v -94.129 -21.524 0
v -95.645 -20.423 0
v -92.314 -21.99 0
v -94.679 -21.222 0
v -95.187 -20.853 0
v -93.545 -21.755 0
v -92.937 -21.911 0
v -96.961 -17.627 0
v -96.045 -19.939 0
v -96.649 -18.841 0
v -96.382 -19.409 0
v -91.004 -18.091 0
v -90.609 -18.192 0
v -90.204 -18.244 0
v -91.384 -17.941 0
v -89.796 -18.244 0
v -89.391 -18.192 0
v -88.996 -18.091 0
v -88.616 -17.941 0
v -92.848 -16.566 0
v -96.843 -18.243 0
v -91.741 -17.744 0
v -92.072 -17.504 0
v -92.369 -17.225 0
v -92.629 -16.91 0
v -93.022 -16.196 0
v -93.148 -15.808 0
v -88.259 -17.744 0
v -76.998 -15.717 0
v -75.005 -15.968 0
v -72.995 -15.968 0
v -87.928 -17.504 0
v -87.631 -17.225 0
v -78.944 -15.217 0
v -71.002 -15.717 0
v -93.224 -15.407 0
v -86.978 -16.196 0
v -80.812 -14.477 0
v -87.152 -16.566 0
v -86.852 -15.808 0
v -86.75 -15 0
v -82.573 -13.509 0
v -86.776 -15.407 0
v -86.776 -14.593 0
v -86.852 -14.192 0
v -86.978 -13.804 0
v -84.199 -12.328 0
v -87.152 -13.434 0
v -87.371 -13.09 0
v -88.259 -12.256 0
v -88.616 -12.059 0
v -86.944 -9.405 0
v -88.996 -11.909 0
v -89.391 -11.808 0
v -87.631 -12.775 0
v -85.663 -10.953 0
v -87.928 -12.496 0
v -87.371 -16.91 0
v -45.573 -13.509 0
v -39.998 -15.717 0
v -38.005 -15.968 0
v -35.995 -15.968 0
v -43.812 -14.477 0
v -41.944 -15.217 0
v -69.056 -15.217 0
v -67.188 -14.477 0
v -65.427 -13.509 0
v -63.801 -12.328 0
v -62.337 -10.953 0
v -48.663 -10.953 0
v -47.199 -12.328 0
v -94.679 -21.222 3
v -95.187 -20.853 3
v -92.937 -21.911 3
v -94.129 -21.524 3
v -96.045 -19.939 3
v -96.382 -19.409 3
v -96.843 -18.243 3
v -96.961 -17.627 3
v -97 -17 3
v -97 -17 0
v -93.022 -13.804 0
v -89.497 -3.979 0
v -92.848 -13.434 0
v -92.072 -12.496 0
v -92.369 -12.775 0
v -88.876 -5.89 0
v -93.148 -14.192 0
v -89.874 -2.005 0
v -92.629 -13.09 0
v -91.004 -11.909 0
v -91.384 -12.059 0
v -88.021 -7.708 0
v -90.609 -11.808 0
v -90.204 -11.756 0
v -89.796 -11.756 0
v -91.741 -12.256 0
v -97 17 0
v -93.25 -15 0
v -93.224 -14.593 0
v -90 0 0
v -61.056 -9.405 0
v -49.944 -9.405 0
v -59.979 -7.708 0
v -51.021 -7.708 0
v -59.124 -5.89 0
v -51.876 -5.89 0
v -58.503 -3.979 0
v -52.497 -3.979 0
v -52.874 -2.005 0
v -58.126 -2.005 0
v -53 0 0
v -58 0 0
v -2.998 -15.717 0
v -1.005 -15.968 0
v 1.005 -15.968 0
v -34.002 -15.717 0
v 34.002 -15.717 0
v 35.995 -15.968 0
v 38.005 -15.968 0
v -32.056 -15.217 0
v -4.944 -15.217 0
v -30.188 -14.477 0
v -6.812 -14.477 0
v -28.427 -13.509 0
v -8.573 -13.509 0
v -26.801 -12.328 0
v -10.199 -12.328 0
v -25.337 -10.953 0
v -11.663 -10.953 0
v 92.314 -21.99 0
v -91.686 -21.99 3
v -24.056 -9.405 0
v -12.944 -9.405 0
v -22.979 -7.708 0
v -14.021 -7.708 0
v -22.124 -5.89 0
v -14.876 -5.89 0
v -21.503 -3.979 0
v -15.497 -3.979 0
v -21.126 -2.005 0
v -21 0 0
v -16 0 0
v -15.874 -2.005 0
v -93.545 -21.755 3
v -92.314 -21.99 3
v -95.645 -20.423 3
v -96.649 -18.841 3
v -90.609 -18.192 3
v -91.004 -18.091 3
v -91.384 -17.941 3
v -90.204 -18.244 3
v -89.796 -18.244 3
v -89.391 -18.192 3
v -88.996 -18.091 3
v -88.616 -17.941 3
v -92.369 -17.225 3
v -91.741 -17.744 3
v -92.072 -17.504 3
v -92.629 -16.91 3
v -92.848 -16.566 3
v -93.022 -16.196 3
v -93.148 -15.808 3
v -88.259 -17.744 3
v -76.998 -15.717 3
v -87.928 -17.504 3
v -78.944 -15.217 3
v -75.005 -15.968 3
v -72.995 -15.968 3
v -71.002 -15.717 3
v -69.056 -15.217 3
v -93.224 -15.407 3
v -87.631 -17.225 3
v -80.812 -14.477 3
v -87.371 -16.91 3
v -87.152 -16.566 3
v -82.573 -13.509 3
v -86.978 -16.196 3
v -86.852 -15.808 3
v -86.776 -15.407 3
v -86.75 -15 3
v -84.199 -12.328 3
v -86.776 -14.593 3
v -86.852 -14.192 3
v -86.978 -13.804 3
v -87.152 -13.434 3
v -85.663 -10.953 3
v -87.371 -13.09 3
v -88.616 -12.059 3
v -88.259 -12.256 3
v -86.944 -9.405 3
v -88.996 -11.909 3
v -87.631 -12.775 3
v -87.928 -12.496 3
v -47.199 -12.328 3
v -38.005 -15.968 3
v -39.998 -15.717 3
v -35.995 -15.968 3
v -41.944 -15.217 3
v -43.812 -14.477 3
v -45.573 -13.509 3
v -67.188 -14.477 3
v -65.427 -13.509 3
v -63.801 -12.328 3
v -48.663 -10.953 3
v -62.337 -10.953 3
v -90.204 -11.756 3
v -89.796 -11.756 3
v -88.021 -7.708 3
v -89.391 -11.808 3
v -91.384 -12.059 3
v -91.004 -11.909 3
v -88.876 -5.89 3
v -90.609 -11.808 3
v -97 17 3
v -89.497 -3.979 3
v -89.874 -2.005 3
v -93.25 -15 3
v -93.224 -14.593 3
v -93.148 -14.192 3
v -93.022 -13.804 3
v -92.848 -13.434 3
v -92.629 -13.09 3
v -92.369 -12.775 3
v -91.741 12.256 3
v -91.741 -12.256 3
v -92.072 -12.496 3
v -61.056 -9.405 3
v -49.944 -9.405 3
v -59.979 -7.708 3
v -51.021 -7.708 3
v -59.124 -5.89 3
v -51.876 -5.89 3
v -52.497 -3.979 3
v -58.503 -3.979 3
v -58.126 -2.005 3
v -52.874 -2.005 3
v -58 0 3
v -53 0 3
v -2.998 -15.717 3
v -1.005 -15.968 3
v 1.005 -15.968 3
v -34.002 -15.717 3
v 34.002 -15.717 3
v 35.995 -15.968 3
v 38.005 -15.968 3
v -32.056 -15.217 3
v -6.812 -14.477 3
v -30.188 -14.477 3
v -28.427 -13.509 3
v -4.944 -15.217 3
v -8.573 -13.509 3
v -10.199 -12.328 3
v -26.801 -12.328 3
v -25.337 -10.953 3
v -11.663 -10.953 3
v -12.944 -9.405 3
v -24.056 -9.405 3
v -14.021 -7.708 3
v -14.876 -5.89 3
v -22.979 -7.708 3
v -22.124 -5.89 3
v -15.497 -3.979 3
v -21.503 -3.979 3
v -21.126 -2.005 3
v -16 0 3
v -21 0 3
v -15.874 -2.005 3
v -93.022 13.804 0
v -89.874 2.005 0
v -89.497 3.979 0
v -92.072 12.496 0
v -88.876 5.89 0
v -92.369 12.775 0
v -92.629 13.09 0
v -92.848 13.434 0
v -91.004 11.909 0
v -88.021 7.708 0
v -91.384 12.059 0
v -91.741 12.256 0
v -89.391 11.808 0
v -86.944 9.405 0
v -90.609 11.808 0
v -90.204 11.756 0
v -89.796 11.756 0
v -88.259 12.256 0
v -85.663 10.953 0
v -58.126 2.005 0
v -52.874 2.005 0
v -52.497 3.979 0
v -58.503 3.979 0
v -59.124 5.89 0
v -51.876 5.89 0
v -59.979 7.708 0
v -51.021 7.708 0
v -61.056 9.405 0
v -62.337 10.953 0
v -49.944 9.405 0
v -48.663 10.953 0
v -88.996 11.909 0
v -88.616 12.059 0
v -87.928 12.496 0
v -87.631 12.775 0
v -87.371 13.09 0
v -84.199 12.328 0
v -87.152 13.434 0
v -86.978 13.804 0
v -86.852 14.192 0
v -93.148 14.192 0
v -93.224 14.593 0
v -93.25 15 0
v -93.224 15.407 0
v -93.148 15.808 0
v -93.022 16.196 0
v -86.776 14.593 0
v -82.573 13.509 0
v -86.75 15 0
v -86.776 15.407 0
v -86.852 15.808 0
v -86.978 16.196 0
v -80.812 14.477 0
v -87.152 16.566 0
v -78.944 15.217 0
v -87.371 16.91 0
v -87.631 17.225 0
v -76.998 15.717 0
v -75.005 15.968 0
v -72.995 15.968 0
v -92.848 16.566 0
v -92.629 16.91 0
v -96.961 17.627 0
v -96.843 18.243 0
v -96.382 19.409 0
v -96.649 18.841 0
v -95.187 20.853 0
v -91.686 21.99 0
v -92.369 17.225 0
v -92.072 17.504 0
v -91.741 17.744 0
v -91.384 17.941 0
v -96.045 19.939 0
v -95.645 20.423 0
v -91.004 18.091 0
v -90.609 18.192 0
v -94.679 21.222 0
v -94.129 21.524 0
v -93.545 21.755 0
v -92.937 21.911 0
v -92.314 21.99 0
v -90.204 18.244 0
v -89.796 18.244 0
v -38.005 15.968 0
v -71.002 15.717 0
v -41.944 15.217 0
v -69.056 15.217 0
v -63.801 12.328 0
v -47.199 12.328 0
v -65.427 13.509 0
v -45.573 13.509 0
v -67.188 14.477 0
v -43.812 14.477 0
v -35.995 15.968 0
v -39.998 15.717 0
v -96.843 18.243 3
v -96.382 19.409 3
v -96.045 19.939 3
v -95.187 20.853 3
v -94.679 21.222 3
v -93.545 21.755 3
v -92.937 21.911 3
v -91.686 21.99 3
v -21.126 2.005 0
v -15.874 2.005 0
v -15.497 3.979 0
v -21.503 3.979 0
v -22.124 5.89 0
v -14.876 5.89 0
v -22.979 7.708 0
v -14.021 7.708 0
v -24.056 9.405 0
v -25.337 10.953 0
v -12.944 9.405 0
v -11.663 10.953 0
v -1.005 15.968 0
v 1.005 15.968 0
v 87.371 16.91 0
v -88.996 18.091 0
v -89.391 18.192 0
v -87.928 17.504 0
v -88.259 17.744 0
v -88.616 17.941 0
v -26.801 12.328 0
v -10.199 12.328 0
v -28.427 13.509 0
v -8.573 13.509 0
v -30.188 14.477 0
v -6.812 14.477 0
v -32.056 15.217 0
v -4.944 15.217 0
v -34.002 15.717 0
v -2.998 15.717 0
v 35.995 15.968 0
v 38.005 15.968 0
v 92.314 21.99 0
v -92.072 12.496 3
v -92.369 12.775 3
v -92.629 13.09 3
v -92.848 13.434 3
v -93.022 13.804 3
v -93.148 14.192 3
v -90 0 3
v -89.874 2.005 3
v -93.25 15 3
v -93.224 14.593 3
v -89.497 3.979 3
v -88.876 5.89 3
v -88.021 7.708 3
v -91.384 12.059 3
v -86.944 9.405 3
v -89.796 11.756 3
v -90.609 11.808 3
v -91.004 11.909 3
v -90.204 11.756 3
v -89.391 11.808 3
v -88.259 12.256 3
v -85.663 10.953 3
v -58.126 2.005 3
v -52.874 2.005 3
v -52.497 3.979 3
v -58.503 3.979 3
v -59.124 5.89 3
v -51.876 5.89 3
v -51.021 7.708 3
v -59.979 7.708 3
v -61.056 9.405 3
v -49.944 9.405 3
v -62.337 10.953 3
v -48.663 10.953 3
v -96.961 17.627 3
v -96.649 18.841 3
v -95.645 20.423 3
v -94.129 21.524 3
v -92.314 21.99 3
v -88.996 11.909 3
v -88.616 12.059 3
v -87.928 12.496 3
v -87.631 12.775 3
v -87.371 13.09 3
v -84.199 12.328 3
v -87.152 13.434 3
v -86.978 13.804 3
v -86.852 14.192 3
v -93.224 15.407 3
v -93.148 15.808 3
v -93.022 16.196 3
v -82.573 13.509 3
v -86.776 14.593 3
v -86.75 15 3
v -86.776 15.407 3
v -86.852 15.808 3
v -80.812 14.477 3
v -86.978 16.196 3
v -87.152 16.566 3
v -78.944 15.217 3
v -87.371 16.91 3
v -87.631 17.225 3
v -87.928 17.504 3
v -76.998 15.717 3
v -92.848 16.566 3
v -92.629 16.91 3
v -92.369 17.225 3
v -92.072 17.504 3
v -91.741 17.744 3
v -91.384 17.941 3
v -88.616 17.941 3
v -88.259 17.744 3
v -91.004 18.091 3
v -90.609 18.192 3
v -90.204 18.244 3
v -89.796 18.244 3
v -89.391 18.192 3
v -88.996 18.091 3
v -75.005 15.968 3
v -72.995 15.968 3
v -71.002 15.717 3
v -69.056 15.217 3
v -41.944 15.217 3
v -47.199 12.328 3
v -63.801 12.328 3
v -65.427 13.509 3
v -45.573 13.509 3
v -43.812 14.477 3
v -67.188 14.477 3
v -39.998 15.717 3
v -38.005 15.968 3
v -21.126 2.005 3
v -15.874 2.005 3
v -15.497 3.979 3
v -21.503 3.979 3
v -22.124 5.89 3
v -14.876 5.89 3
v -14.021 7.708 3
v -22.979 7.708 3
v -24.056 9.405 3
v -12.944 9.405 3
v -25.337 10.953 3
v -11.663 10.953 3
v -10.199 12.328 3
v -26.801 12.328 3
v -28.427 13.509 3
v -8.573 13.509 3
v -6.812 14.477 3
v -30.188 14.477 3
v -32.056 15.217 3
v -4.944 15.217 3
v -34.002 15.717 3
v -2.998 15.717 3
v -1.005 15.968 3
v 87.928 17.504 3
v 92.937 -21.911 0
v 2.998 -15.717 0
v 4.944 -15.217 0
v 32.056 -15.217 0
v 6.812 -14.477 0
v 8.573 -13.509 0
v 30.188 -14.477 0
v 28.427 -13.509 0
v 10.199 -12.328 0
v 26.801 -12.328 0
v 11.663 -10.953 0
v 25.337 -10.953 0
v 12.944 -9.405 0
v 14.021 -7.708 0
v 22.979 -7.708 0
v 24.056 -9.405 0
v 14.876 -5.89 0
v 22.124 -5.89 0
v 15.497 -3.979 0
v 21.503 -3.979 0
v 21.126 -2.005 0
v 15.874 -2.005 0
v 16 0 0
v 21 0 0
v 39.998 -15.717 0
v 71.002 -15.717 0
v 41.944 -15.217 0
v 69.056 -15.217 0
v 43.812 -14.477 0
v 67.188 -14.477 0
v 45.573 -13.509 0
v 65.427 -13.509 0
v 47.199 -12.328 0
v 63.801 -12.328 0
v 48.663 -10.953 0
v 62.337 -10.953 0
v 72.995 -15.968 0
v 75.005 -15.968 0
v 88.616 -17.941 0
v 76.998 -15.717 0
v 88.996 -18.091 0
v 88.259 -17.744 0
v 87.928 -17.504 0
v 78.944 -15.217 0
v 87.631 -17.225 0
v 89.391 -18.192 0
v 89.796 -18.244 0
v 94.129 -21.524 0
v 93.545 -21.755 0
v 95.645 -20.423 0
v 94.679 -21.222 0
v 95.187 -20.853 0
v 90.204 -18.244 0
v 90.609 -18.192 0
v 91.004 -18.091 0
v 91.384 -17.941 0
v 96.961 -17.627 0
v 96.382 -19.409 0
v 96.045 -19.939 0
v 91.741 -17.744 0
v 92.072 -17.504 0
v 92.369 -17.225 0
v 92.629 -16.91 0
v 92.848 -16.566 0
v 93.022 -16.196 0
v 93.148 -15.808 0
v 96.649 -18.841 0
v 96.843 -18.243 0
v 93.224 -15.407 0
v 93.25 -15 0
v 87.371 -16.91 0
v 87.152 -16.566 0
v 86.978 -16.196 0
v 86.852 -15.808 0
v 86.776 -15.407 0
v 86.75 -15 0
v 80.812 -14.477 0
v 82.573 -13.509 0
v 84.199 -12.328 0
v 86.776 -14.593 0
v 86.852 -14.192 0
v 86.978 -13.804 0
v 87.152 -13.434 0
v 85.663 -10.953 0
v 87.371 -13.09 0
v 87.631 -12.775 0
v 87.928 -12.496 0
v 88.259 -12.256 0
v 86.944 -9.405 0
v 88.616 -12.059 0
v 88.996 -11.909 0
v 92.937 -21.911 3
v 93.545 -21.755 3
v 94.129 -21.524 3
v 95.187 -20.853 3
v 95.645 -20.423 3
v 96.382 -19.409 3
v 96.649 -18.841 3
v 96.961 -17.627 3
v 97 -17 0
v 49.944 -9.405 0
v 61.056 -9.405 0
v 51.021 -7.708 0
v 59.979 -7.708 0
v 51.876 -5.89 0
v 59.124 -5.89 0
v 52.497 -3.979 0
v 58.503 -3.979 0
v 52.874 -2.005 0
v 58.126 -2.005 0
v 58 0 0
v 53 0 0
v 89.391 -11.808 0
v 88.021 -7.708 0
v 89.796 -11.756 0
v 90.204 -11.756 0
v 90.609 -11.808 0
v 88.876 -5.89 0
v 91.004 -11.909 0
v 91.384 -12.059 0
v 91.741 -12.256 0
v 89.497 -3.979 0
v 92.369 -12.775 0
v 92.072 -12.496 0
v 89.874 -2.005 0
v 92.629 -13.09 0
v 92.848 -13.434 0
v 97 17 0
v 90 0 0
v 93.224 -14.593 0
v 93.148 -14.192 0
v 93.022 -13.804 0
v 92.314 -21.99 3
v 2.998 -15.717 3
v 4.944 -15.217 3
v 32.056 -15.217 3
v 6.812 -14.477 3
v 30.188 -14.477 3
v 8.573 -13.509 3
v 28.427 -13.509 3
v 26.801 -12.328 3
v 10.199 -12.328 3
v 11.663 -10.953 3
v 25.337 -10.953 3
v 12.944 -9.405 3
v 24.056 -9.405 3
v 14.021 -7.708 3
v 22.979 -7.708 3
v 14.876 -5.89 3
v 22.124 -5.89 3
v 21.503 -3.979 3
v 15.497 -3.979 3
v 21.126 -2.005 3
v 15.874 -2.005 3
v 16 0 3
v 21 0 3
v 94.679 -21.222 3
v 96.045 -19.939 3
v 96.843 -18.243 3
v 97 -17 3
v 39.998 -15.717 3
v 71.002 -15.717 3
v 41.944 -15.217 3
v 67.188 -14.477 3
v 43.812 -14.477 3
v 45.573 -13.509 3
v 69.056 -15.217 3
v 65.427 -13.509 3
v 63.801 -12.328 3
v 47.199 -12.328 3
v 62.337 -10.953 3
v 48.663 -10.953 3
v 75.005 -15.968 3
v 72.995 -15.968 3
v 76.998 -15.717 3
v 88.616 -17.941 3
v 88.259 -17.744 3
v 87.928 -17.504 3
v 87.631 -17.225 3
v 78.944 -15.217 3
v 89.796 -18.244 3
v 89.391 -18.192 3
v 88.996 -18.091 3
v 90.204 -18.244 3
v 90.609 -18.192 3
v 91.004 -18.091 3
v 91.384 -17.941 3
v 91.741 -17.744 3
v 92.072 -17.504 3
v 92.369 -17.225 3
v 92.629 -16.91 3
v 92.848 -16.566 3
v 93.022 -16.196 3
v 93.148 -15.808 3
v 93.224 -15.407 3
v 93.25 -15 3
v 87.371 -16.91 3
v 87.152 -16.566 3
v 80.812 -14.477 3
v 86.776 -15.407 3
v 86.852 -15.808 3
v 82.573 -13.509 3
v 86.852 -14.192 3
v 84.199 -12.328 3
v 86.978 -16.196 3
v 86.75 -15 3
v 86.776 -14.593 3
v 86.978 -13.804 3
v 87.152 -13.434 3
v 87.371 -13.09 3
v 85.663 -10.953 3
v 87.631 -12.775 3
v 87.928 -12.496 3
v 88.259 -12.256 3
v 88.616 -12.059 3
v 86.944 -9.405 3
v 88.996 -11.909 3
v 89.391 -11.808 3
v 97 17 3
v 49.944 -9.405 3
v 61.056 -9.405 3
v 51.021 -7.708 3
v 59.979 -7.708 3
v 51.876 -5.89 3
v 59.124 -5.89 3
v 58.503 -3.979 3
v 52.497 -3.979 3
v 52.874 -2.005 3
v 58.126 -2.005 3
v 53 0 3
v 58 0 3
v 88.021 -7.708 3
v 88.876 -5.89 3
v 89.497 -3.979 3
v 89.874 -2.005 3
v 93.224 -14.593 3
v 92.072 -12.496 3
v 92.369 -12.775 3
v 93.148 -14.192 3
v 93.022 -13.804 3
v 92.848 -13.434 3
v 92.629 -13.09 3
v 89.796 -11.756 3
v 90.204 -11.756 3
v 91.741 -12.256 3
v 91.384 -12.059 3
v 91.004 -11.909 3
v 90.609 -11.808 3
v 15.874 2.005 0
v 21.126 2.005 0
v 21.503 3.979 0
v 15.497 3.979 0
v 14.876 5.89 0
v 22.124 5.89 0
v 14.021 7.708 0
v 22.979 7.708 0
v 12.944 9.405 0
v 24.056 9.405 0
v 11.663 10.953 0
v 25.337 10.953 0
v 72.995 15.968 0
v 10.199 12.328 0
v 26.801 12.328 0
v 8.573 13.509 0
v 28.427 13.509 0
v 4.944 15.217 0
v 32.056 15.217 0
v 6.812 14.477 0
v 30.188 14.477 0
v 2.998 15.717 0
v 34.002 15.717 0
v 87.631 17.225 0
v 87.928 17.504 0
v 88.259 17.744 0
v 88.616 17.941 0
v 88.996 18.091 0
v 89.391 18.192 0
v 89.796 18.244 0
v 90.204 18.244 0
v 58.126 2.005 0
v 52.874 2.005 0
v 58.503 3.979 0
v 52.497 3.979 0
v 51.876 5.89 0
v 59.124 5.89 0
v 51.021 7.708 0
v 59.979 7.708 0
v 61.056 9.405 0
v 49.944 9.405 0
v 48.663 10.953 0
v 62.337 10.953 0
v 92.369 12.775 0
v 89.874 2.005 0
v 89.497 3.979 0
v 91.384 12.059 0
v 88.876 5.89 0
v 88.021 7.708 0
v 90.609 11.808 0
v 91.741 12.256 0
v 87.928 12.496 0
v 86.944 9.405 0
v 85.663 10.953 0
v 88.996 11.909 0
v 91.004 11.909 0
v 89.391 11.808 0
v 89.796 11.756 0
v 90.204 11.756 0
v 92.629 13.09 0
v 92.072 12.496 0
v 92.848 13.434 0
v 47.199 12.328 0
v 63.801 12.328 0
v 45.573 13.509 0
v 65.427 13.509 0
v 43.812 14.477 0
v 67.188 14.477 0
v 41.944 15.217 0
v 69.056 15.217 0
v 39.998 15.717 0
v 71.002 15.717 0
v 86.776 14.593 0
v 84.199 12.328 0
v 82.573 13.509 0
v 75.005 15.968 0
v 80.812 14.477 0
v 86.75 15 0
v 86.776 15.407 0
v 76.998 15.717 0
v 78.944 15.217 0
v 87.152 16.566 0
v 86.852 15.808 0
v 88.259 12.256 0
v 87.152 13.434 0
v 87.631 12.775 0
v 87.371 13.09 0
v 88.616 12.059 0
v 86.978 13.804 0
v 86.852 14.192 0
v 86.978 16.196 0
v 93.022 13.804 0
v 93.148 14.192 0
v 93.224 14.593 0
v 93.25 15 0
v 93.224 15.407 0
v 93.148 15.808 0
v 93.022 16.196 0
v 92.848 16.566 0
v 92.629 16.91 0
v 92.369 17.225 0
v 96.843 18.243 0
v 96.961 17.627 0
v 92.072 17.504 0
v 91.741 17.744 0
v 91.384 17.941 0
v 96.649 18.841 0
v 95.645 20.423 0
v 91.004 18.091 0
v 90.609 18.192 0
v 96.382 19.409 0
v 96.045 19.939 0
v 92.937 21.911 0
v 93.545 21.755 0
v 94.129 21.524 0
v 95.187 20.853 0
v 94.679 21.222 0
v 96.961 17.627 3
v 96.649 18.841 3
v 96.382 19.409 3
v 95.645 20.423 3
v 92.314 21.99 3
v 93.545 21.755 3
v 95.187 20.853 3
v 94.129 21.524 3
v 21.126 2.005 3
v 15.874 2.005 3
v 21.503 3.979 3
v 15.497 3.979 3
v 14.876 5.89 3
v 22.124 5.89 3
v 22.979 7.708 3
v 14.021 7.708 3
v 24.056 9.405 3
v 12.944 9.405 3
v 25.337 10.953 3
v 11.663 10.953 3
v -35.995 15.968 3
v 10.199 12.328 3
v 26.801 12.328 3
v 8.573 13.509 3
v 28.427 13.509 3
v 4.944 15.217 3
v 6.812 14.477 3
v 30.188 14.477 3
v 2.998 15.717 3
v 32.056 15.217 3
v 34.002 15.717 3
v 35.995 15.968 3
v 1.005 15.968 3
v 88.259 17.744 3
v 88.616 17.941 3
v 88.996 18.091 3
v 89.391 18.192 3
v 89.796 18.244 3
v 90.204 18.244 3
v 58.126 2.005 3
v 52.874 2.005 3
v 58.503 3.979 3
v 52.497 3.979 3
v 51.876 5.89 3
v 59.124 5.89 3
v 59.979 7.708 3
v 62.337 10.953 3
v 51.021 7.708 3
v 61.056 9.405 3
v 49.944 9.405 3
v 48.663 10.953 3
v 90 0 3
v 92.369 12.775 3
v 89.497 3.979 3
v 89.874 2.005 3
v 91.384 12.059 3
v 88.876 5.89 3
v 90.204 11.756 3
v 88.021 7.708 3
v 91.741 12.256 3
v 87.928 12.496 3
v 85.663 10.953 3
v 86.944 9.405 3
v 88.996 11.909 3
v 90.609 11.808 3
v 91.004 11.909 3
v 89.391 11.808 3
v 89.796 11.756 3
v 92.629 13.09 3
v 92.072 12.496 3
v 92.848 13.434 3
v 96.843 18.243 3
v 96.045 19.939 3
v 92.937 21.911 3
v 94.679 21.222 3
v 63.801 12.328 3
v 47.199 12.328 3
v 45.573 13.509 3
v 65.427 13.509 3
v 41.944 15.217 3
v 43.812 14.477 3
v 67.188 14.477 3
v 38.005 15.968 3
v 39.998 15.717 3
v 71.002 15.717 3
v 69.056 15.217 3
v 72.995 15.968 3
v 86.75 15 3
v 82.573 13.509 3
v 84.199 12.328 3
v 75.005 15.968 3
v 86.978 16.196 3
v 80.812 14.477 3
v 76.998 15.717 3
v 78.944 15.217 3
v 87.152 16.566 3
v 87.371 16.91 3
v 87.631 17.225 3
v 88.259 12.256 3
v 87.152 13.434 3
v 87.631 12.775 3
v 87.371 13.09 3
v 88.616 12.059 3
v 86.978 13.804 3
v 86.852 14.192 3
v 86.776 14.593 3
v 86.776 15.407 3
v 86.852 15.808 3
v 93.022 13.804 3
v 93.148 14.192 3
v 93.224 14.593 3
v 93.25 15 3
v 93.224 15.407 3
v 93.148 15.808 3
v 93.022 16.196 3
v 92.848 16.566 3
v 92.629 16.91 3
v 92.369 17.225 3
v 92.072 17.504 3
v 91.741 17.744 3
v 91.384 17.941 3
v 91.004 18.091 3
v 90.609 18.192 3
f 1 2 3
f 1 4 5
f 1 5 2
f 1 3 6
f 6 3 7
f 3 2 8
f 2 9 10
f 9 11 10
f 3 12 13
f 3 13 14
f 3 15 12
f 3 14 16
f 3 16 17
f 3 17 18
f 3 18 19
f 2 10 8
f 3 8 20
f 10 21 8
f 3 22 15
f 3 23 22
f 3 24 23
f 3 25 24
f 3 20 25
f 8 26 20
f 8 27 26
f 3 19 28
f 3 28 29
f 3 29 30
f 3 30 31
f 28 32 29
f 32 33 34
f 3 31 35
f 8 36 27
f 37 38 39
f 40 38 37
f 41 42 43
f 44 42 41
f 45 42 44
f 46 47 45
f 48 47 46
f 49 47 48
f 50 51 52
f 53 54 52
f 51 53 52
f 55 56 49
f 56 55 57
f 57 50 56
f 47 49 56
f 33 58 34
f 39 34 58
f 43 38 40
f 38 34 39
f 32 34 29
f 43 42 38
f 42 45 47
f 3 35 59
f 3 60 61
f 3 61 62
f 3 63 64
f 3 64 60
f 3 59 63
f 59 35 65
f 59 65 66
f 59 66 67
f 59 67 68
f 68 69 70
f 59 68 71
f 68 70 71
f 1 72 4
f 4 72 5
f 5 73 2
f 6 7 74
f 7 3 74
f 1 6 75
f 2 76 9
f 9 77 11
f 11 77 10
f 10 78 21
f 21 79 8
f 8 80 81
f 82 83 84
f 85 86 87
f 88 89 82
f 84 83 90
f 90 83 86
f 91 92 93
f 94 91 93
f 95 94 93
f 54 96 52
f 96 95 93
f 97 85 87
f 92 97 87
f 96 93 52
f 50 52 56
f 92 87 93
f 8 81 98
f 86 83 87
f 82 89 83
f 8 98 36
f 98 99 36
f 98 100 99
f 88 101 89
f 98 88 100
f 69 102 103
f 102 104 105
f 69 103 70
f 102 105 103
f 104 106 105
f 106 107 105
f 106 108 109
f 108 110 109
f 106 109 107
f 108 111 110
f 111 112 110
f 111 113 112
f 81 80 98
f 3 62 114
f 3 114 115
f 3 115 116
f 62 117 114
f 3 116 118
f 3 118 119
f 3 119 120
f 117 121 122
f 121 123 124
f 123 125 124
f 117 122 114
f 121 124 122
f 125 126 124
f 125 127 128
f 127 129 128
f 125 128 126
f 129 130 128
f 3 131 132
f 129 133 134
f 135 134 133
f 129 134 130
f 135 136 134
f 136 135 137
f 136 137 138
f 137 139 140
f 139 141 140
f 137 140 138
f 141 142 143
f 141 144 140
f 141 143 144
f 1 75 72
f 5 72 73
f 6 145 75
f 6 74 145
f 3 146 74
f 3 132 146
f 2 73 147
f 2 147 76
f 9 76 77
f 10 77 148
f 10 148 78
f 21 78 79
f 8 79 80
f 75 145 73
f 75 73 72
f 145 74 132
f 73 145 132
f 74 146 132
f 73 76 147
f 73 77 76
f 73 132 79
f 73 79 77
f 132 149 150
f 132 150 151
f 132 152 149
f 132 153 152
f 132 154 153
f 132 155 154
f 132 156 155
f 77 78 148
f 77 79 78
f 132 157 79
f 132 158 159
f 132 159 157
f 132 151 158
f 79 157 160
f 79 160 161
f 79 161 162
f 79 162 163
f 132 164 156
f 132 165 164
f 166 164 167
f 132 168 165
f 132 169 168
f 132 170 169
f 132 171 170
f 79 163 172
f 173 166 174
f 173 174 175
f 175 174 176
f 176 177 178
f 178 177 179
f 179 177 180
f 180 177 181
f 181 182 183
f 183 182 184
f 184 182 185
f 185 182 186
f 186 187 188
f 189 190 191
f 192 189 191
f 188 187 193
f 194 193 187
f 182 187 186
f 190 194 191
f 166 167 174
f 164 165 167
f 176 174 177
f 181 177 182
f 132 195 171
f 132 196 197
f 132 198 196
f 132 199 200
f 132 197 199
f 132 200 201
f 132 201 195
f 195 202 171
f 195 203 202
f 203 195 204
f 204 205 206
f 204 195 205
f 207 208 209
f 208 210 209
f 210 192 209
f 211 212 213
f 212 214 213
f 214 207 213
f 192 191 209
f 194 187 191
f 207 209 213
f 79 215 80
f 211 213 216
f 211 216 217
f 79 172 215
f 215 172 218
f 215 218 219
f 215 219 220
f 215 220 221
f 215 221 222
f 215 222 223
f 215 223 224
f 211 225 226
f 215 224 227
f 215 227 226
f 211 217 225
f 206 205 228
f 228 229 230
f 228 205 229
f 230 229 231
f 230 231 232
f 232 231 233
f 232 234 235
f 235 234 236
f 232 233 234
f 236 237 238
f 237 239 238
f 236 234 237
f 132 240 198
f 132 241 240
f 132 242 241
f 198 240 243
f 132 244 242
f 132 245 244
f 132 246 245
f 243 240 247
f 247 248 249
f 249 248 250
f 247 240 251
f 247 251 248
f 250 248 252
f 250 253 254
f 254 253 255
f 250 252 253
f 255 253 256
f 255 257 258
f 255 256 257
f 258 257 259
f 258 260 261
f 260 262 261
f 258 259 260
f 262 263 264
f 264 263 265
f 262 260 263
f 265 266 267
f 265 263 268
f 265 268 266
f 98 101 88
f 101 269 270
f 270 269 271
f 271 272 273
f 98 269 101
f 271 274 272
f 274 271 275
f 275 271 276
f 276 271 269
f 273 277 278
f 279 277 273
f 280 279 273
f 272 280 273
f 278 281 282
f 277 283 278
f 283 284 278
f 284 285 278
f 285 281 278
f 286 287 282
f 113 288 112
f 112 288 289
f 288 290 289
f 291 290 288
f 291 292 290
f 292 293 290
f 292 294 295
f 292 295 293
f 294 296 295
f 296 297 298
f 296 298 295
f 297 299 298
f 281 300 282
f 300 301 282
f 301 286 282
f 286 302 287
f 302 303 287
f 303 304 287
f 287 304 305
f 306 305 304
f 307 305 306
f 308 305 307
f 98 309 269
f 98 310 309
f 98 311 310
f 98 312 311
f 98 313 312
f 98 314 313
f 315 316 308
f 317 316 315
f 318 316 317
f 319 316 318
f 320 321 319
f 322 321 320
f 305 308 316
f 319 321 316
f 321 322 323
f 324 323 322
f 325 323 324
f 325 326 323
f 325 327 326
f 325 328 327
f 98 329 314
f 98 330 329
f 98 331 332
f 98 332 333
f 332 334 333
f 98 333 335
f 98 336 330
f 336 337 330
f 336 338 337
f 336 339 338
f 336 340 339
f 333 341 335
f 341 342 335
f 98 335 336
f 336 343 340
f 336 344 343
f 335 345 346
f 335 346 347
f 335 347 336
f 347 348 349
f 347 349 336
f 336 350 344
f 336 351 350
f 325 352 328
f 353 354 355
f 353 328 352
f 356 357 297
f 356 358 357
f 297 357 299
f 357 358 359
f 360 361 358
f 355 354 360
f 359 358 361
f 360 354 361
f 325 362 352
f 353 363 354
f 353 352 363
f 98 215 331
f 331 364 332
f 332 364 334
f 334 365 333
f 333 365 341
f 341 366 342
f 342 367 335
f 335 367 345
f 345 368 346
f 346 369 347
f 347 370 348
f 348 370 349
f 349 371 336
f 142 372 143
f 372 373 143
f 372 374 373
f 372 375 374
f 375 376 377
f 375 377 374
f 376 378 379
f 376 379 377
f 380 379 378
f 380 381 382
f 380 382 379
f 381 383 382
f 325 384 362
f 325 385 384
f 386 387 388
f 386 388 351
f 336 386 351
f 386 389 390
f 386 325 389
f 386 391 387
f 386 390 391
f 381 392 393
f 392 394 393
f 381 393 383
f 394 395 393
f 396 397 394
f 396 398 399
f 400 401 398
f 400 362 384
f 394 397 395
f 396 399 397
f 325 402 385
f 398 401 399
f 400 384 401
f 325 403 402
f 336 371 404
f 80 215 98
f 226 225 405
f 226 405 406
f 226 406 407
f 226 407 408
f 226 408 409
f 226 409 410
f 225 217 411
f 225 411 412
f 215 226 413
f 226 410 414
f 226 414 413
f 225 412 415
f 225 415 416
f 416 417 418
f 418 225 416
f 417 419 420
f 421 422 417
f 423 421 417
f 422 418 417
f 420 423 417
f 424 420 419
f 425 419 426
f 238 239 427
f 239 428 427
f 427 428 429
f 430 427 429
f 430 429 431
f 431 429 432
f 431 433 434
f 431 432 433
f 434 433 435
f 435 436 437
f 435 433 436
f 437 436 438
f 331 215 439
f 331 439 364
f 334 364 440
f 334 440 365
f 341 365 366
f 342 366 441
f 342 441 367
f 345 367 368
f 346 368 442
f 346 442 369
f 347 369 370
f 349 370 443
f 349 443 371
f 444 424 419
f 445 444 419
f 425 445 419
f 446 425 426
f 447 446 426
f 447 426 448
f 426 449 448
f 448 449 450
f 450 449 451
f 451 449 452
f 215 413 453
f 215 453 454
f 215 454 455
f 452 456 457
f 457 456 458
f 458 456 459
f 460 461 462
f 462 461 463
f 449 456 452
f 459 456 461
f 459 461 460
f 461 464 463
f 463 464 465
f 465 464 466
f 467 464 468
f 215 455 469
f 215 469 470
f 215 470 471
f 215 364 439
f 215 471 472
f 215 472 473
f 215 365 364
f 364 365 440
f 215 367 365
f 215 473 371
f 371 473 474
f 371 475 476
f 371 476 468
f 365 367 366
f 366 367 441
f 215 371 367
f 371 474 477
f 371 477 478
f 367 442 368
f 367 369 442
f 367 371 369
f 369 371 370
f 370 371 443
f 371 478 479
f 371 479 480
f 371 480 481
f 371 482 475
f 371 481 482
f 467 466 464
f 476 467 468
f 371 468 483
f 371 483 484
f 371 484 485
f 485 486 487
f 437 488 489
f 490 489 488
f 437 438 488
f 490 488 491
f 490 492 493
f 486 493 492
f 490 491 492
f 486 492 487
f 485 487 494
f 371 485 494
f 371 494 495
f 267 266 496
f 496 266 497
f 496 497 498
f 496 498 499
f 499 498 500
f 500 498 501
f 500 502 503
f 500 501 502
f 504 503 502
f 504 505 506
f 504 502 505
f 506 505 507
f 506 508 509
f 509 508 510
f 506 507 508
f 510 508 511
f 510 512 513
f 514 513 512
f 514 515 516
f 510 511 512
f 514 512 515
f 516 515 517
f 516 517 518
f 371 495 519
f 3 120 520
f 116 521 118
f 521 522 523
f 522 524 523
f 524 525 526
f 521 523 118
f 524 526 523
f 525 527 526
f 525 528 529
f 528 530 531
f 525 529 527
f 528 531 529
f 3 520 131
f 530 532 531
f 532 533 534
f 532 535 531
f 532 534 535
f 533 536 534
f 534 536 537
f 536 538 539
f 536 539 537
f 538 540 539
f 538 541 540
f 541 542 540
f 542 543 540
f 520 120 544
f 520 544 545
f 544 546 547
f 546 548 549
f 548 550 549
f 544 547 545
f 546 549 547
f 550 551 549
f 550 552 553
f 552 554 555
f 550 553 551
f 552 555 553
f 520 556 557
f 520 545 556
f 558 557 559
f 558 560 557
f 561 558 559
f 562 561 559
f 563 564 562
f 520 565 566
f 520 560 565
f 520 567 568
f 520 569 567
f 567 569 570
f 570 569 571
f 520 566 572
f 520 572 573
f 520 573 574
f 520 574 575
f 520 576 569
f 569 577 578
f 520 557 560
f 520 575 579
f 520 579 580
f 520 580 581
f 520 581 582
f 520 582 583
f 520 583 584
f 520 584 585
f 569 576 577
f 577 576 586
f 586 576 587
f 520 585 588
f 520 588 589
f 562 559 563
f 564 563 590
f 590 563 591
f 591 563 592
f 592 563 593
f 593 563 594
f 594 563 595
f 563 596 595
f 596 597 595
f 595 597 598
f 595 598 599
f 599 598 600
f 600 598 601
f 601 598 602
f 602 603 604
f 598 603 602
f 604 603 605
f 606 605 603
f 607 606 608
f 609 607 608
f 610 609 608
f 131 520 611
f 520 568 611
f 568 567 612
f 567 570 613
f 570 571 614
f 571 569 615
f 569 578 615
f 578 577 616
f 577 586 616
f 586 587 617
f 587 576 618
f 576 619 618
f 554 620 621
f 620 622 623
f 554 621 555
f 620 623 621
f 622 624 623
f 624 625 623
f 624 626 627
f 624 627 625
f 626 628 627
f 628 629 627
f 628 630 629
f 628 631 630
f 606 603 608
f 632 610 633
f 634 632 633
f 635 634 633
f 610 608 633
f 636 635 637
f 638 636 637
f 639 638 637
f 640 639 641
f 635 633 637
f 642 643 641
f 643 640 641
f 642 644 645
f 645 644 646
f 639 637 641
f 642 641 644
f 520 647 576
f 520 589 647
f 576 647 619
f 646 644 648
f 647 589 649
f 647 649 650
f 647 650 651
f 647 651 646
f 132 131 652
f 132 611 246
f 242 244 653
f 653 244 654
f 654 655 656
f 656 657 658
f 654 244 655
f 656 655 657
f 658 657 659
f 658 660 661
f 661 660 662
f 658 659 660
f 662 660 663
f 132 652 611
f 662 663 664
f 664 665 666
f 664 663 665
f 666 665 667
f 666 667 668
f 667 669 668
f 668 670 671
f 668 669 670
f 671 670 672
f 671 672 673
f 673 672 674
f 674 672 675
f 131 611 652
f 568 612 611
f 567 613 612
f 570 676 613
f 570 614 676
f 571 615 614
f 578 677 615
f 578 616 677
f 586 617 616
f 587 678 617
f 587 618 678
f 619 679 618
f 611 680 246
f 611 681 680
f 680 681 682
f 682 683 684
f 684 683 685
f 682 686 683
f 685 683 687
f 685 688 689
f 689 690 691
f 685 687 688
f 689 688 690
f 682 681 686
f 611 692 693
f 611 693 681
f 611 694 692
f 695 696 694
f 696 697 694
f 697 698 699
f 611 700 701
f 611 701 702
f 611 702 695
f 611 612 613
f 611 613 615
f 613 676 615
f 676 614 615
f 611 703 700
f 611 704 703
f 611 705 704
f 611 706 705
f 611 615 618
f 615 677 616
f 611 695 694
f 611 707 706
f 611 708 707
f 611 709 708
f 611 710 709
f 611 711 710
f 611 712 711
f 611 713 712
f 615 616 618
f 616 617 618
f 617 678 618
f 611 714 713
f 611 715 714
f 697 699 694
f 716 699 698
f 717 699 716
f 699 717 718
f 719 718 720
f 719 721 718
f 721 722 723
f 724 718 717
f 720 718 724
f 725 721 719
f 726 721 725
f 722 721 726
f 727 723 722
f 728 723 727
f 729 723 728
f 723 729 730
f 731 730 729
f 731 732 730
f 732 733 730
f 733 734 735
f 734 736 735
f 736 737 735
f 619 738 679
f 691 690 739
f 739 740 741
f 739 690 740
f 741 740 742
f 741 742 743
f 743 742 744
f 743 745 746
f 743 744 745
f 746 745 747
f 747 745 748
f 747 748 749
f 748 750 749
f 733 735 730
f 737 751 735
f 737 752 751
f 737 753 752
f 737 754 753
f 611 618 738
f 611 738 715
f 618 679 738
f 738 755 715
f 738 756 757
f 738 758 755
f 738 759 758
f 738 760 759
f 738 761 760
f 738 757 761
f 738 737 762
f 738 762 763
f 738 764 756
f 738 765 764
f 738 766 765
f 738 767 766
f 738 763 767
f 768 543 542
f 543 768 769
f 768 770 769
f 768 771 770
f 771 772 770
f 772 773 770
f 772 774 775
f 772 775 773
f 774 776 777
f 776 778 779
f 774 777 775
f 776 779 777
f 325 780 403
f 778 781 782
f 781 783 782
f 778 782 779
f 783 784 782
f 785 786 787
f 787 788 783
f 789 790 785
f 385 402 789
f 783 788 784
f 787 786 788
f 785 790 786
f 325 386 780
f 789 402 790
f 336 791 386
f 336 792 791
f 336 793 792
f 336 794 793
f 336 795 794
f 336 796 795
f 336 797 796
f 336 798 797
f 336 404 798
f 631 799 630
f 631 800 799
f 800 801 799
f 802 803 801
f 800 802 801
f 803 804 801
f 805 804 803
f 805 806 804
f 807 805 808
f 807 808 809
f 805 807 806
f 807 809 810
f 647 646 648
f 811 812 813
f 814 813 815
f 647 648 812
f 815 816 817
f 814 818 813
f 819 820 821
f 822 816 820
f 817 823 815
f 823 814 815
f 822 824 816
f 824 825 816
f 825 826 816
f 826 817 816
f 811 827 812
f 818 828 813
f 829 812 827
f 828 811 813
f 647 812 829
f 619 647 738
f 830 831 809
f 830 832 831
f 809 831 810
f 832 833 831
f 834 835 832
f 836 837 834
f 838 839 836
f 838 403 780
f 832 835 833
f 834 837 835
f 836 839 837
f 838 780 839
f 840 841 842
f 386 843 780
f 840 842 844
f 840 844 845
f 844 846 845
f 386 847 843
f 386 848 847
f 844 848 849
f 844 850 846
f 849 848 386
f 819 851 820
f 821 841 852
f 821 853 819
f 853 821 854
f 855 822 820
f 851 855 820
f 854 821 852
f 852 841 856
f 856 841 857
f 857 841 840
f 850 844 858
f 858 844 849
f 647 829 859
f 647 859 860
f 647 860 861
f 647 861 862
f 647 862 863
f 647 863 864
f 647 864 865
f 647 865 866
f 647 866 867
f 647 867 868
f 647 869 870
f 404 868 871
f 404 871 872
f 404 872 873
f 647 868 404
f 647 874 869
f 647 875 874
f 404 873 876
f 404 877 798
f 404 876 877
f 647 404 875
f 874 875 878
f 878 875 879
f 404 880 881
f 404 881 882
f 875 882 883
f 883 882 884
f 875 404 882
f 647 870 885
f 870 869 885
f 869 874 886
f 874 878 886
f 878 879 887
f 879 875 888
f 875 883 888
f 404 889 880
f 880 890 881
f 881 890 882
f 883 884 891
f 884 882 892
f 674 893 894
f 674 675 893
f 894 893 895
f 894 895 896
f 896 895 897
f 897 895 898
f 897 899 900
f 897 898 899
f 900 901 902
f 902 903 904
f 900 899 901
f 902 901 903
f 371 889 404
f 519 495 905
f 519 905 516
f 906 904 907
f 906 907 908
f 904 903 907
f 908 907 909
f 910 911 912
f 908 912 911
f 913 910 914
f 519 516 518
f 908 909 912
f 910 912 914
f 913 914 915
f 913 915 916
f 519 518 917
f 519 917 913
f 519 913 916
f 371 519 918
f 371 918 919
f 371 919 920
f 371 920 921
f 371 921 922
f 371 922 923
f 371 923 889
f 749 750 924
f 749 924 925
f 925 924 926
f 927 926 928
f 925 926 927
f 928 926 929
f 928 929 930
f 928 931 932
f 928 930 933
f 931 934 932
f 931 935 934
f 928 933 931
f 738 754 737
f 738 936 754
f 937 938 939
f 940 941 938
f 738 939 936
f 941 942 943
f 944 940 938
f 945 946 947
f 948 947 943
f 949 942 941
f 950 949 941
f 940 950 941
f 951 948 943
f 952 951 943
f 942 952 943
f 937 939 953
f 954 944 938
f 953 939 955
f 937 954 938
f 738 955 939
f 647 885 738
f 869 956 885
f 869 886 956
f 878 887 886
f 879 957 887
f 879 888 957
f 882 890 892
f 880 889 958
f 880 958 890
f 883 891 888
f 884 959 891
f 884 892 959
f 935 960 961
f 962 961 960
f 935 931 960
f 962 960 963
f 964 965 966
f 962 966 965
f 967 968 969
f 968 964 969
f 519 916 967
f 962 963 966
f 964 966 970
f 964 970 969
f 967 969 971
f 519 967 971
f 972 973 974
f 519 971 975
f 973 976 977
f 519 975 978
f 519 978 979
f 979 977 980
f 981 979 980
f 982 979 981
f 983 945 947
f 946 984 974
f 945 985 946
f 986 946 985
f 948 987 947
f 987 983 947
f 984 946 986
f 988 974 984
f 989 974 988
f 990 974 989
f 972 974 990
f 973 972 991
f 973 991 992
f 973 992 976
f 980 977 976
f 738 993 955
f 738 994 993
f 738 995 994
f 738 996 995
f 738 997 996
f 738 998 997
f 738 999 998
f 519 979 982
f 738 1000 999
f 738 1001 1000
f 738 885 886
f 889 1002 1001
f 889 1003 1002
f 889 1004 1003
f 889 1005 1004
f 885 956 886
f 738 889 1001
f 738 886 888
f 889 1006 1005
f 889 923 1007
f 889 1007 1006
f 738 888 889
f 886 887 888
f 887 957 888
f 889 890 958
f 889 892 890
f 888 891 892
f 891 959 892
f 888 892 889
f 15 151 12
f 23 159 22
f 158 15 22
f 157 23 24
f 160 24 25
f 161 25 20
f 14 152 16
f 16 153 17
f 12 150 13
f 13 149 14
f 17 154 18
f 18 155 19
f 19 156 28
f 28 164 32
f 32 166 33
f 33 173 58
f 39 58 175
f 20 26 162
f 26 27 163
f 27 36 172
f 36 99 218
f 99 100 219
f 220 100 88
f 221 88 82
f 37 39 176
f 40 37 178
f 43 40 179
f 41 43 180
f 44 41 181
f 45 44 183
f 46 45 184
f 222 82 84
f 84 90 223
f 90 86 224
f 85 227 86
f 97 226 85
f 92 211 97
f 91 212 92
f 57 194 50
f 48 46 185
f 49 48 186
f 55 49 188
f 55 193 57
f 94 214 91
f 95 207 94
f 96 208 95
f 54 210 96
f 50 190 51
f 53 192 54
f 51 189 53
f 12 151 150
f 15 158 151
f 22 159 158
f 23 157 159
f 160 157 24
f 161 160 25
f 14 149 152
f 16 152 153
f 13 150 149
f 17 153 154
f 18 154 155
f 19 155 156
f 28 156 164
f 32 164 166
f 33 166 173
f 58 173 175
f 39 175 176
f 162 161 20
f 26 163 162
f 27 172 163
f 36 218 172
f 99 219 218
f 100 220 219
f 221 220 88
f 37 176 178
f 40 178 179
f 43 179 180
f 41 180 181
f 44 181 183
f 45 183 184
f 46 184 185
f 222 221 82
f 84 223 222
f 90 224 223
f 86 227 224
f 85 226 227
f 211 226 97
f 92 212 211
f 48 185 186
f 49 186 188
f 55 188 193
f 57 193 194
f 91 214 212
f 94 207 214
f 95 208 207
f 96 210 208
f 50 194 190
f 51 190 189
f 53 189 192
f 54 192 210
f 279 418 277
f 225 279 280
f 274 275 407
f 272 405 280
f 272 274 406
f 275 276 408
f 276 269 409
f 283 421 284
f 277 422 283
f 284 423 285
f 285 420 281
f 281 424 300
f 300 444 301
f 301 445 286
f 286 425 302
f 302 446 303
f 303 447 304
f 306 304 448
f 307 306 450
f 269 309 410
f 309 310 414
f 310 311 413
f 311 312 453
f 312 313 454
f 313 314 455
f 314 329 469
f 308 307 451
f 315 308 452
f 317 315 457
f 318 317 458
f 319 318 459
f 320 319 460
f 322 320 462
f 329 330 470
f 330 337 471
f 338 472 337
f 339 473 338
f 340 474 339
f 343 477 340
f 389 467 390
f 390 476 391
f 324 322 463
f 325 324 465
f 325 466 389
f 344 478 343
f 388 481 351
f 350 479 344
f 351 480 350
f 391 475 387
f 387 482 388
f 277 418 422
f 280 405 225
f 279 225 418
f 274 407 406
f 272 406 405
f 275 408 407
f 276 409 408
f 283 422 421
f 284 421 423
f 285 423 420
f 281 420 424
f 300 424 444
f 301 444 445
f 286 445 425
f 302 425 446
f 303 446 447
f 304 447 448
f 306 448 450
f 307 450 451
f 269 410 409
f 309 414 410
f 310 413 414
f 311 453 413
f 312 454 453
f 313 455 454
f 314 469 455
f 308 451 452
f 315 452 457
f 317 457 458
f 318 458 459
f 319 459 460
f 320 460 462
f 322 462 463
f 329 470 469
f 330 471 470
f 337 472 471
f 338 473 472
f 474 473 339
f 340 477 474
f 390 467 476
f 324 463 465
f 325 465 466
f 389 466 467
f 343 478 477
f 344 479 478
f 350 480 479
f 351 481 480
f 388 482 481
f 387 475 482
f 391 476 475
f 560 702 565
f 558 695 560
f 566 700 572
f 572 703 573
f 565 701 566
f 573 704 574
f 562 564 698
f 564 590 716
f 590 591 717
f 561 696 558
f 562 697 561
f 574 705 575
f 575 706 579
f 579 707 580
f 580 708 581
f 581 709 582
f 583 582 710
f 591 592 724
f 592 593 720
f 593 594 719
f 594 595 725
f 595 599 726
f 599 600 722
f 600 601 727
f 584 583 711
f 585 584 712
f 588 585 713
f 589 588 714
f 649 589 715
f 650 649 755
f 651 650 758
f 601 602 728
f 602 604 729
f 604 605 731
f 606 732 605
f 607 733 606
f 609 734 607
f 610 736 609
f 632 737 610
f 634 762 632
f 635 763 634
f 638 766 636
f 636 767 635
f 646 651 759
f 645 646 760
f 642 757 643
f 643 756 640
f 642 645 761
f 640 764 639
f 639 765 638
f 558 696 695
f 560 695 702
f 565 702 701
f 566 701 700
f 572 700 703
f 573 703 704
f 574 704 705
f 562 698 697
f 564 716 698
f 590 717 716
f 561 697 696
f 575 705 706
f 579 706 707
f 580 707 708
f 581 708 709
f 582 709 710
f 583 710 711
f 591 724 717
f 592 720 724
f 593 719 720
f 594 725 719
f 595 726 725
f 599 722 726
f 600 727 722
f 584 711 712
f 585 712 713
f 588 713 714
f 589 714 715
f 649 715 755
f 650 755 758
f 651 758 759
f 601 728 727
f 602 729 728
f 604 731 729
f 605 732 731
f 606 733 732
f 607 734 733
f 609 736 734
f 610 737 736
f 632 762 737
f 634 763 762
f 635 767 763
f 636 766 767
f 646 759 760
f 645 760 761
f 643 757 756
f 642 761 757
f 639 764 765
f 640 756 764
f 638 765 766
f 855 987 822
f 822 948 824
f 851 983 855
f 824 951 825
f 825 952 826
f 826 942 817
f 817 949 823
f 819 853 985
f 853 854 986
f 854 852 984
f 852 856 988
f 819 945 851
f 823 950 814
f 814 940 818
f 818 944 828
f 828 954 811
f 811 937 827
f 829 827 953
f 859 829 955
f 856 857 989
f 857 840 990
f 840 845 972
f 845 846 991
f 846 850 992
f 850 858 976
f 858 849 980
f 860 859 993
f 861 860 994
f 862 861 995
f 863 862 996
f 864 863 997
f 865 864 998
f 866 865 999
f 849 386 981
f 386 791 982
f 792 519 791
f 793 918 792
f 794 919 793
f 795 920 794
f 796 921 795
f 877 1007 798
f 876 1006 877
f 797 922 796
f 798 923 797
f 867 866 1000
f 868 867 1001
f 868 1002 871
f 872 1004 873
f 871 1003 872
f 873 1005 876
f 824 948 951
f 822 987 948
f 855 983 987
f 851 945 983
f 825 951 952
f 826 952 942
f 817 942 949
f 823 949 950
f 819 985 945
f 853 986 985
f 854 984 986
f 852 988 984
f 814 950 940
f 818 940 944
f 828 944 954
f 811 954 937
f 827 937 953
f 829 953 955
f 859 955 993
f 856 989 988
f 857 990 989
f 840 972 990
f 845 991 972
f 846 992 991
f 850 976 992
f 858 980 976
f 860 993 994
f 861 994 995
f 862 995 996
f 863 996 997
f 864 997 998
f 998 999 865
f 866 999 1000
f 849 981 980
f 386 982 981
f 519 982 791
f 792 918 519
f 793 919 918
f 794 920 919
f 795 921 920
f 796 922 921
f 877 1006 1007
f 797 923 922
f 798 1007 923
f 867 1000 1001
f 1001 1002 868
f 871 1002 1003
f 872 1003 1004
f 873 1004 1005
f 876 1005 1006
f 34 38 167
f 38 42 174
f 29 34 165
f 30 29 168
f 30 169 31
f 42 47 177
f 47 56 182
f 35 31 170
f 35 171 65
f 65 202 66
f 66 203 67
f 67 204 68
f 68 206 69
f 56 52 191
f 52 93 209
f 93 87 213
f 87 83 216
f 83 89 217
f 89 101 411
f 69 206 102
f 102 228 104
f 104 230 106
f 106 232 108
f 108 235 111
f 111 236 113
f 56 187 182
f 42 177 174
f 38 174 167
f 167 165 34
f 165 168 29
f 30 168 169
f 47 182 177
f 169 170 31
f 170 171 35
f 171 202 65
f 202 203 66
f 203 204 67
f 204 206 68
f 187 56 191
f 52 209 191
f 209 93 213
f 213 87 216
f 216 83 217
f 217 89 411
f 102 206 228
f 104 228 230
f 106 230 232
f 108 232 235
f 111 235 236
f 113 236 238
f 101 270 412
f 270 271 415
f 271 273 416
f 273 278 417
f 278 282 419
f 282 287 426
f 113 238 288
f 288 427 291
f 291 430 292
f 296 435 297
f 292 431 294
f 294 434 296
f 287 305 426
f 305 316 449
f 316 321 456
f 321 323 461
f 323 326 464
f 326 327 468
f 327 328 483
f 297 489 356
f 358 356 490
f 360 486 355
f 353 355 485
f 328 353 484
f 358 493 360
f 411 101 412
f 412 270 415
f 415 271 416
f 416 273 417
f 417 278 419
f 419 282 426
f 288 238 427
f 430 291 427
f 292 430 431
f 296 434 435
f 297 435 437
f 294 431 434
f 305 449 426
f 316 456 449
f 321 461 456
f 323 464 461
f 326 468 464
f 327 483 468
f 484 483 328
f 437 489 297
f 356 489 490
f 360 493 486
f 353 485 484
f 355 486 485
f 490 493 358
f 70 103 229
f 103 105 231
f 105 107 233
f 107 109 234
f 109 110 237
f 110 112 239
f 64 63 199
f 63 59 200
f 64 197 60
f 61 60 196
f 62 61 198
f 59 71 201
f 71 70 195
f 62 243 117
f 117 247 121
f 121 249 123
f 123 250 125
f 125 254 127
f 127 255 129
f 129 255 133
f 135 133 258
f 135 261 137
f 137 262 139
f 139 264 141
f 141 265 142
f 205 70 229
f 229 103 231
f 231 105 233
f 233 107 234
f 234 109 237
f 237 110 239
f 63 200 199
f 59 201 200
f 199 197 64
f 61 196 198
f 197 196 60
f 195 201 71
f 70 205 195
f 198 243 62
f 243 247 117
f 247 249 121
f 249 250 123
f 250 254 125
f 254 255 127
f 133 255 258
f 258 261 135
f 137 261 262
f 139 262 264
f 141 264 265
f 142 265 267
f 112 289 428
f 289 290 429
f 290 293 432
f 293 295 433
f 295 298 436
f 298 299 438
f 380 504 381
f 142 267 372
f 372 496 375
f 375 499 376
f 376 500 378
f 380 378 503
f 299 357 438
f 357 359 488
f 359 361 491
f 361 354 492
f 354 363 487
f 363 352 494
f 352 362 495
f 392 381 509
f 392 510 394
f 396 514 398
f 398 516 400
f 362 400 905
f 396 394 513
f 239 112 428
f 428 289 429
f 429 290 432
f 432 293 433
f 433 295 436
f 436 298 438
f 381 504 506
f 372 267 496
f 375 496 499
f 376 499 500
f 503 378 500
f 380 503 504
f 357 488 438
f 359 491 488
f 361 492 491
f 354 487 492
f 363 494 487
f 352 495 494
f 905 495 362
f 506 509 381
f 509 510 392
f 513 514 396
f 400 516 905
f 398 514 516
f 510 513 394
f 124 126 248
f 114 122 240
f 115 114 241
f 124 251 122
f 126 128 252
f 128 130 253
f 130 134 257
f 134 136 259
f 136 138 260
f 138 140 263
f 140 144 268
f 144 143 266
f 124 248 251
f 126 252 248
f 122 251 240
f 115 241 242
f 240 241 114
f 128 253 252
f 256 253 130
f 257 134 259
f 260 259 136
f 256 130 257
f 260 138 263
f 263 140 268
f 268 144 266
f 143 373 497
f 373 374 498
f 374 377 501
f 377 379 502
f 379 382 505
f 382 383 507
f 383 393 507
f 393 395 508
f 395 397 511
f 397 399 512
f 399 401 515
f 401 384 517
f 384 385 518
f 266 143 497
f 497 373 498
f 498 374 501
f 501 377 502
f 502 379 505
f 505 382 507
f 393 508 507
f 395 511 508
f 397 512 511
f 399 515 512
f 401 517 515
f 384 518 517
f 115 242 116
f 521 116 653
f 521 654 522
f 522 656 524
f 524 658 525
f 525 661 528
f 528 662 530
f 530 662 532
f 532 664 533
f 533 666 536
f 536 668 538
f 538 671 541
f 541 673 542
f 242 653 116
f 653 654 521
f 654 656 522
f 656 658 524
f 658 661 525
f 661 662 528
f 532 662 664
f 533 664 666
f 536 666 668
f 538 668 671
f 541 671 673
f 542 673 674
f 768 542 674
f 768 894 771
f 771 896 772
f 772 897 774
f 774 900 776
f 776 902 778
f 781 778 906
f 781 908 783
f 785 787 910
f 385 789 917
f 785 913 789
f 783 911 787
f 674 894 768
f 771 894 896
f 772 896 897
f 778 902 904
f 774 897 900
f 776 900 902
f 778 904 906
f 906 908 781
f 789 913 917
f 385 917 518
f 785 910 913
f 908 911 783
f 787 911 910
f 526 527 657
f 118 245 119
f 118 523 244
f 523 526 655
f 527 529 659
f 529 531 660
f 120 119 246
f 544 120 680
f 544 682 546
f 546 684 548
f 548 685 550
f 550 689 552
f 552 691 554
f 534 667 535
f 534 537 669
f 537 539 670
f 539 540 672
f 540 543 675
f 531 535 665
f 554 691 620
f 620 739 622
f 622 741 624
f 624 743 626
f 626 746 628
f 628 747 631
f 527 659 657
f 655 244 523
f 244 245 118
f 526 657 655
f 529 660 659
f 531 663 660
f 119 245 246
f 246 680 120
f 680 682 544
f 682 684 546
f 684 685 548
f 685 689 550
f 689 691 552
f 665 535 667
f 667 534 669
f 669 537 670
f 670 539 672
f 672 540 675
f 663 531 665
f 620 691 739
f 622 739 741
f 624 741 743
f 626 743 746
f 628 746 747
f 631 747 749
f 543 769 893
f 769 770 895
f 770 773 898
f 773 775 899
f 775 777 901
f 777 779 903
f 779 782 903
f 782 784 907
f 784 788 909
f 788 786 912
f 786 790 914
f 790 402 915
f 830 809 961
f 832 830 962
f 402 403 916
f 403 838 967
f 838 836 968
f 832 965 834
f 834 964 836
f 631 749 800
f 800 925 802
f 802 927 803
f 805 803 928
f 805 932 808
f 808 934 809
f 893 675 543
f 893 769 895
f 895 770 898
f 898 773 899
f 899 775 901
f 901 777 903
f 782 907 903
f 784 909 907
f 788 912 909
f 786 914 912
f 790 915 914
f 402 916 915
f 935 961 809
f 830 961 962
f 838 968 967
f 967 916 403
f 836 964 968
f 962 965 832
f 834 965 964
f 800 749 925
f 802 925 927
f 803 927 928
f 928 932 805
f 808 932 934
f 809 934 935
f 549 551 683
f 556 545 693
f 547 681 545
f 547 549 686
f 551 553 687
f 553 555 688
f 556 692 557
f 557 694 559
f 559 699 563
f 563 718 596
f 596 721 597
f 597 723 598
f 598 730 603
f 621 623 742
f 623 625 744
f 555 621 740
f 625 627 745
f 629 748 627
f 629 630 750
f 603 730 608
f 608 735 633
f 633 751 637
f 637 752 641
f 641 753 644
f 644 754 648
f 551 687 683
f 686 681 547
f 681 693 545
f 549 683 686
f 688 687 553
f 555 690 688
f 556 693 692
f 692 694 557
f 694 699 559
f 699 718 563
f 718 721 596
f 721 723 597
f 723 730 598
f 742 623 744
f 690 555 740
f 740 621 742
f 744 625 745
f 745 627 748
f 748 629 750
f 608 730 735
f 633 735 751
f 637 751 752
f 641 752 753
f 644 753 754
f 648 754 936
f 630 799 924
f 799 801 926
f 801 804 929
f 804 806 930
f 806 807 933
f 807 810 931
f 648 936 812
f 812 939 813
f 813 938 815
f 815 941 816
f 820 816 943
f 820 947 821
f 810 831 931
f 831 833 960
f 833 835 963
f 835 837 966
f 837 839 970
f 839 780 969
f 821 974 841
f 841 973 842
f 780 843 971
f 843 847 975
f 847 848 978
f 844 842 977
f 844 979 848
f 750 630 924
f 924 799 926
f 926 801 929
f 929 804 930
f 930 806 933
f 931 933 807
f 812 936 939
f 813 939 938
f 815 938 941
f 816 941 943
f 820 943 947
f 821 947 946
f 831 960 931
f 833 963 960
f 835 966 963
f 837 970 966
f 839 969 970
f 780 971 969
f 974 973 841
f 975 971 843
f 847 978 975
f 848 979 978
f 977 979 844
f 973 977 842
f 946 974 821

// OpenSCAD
$fn = 50;

difference() {
	union() {
		hull() {
			translate(v = [-92.0, 17.0, 0]) {
				cylinder(h = 3, r = 5);
			}
			translate(v = [92.0, 17.0, 0]) {
				cylinder(h = 3, r = 5);
			}
			translate(v = [-92.0, -17.0, 0]) {
				cylinder(h = 3, r = 5);
			}
			translate(v = [92.0, -17.0, 0]) {
				cylinder(h = 3, r = 5);
			}
		}
	}
	union() {
		translate(v = [-90.0, -15.0, -100.0]) {
			cylinder(h = 200, r = 3.25);
		}
		translate(v = [-90.0, 15.0, -100.0]) {
			cylinder(h = 200, r = 3.25);
		}
		translate(v = [90.0, -15.0, -100.0]) {
			cylinder(h = 200, r = 3.25);
		}
		translate(v = [90.0, 15.0, -100.0]) {
			cylinder(h = 200, r = 3.25);
		}
		translate(v = [-90.0, -15.0, -100.0]) {
			cylinder(h = 200, r = 1.8);
		}
		translate(v = [-90.0, 15.0, -100.0]) {
			cylinder(h = 200, r = 1.8);
		}
		translate(v = [90.0, -15.0, -100.0]) {
			cylinder(h = 200, r = 1.8);
		}
		translate(v = [90.0, 15.0, -100.0]) {
			cylinder(h = 200, r = 1.8);
		}
		translate(v = [-74.0, 0, 0.0]) {
			cylinder(h = 3, r = 16.0);
		}
		translate(v = [-37.0, 0, 0.0]) {
			cylinder(h = 3, r = 16.0);
		}
		cylinder(h = 3, r = 16.0);
		translate(v = [37.0, 0, 0.0]) {
			cylinder(h = 3, r = 16.0);
		}
		translate(v = [74.0, 0, 0.0]) {
			cylinder(h = 3, r = 16.0);
		}
	}
}
